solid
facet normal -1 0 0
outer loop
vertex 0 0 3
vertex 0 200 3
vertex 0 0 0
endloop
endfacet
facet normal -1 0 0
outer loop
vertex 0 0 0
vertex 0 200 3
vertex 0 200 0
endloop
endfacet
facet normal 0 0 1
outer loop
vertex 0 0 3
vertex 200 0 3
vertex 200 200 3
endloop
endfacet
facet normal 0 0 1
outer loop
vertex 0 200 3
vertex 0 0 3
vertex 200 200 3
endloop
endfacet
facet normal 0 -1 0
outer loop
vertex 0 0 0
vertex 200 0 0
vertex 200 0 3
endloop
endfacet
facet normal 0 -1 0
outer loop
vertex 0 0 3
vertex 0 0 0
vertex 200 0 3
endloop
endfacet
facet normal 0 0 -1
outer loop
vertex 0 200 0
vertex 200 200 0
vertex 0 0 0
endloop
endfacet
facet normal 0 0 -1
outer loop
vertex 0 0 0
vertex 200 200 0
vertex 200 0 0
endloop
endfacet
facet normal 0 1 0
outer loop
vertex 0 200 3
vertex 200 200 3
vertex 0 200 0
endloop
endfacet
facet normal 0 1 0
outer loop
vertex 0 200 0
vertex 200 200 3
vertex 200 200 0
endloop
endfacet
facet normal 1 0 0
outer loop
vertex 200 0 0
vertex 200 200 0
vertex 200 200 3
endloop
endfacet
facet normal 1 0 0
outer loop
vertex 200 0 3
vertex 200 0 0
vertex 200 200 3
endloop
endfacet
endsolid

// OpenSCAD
// file: ../functions.scad
// PRUSA Mendel  
// Functions used in many files
// GNU GPL v2
// Josef Průša
// josefprusa@me.com
// prusadjs.cz
// http://www.reprap.org/wiki/Prusa_Mendel
// http://github.com/prusajr/PrusaMendel

module nut(d,h,horizontal=true){
cornerdiameter =  (d / 2) / cos (180 / 6);
cylinder(h = h, r = cornerdiameter, $fn = 6);
if(horizontal){
for(i = [1:6]){
	rotate([0,0,60*i]) translate([-cornerdiameter-0.2,0,0]) rotate([0,0,-45]) cube(size = [2,2,h]);
}}
}

// By nophead
module polyhole(d,h) {
    n = max(round(2 * d),3);
    rotate([0,0,180])
        cylinder(h = h, r = (d / 2) / cos (180 / n), $fn = n);
}

module roundcorner(diameter){
	difference(){
		cube(size = [diameter,diameter,99], center = false);
		translate(v = [diameter, diameter, 0]) cylinder(h = 100, r=diameter, center=true);
	}
}
// file: ../metric.scad
// PRUSA Mendel  
// Default metric sizes
// GNU GPL v2
// Josef Průša
// josefprusa@me.com
// prusadjs.cz
// http://www.reprap.org/wiki/Prusa_Mendel
// http://github.com/prusajr/PrusaMendel

// DONT CHANGE THIS FILE! ALTER VALUES IN CONFIGURATION.SCAD INSTEAD

// RODS

threaded_rod_diameter = 8;
threaded_rod_diameter_horizontal = 8;
smooth_bar_diameter = 8;
smooth_bar_diameter_horizontal = 8;

// Nuts and bolts

m8_diameter = 8;
m8_nut_diameter = 14.5;

m4_diameter = 4;
m4_nut_diameter = 7.5;

m3_diameter = 3;
m3_nut_diameter = 5;

// Bushing holder

bushing_core_diameter = smooth_bar_diameter;
bushing_material_thickness = 1;

// Motors

motor_shaft = 5.1;
// file: ../configuration.scad
// PRUSA Mendel  
// Configuration file
// GNU GPL v2
// Josef Průša
// josefprusa@me.com
// prusadjs.cz
// http://www.reprap.org/wiki/Prusa_Mendel
// http://github.com/prusajr/PrusaMendel

// PLEASE SELECT ONE OF THE CONFIGURATIONS BELOW
// BY UN-COMMENTING IT

// Uncomment for metric settings
// METRIC METRIC METRIC METRIC METRIC METRIC METRIC METRIC 

include <metric.scad>;

// Uncomment for imperial settings
// IMPERIAL IMPERIAL IMPERIAL IMPERIAL IMPERIAL IMPERIAL IMPERIAL 

//include <sae.scad>;

//thin_wall = 3;
// LM8UU
//linear = false;

// override settings by customizing below
// CUSTOM CUSTOM CUSTOM CUSTOM CUSTOM CUSTOM CUSTOM CUSTOM CUSTOM

threaded_rod_diameter = 8.2;
threaded_rod_diameter_horizontal = 8.2;
smooth_bar_diameter = 8.3;
smooth_bar_diameter_horizontal = 8.3;

// Nuts and bolts

m8_diameter = 8.3;
m8_nut_diameter = 15;

m4_diameter = 4.2;
m4_nut_diameter = 9;

m3_diameter = 3.3;
m3_nut_diameter = 5.8;

///counted stuff
m3_nut_diameter_bigger = ((m3_nut_diameter  / 2) / cos (180 / 6))*2;

// functions 
include <functions.scad>
// main file
// F. Beachler, Longevity Software LLC. d.b.a. Terawatt Industries

include <../configuration.scad>;

$fn=50;
height = 200;
width = 200;
depth = 3;

heatbed(height, width, depth);

module heatbed(h = height, w = width, t = depth) {
	color([255, 0, 0]) cube([h, w, t]);
}
